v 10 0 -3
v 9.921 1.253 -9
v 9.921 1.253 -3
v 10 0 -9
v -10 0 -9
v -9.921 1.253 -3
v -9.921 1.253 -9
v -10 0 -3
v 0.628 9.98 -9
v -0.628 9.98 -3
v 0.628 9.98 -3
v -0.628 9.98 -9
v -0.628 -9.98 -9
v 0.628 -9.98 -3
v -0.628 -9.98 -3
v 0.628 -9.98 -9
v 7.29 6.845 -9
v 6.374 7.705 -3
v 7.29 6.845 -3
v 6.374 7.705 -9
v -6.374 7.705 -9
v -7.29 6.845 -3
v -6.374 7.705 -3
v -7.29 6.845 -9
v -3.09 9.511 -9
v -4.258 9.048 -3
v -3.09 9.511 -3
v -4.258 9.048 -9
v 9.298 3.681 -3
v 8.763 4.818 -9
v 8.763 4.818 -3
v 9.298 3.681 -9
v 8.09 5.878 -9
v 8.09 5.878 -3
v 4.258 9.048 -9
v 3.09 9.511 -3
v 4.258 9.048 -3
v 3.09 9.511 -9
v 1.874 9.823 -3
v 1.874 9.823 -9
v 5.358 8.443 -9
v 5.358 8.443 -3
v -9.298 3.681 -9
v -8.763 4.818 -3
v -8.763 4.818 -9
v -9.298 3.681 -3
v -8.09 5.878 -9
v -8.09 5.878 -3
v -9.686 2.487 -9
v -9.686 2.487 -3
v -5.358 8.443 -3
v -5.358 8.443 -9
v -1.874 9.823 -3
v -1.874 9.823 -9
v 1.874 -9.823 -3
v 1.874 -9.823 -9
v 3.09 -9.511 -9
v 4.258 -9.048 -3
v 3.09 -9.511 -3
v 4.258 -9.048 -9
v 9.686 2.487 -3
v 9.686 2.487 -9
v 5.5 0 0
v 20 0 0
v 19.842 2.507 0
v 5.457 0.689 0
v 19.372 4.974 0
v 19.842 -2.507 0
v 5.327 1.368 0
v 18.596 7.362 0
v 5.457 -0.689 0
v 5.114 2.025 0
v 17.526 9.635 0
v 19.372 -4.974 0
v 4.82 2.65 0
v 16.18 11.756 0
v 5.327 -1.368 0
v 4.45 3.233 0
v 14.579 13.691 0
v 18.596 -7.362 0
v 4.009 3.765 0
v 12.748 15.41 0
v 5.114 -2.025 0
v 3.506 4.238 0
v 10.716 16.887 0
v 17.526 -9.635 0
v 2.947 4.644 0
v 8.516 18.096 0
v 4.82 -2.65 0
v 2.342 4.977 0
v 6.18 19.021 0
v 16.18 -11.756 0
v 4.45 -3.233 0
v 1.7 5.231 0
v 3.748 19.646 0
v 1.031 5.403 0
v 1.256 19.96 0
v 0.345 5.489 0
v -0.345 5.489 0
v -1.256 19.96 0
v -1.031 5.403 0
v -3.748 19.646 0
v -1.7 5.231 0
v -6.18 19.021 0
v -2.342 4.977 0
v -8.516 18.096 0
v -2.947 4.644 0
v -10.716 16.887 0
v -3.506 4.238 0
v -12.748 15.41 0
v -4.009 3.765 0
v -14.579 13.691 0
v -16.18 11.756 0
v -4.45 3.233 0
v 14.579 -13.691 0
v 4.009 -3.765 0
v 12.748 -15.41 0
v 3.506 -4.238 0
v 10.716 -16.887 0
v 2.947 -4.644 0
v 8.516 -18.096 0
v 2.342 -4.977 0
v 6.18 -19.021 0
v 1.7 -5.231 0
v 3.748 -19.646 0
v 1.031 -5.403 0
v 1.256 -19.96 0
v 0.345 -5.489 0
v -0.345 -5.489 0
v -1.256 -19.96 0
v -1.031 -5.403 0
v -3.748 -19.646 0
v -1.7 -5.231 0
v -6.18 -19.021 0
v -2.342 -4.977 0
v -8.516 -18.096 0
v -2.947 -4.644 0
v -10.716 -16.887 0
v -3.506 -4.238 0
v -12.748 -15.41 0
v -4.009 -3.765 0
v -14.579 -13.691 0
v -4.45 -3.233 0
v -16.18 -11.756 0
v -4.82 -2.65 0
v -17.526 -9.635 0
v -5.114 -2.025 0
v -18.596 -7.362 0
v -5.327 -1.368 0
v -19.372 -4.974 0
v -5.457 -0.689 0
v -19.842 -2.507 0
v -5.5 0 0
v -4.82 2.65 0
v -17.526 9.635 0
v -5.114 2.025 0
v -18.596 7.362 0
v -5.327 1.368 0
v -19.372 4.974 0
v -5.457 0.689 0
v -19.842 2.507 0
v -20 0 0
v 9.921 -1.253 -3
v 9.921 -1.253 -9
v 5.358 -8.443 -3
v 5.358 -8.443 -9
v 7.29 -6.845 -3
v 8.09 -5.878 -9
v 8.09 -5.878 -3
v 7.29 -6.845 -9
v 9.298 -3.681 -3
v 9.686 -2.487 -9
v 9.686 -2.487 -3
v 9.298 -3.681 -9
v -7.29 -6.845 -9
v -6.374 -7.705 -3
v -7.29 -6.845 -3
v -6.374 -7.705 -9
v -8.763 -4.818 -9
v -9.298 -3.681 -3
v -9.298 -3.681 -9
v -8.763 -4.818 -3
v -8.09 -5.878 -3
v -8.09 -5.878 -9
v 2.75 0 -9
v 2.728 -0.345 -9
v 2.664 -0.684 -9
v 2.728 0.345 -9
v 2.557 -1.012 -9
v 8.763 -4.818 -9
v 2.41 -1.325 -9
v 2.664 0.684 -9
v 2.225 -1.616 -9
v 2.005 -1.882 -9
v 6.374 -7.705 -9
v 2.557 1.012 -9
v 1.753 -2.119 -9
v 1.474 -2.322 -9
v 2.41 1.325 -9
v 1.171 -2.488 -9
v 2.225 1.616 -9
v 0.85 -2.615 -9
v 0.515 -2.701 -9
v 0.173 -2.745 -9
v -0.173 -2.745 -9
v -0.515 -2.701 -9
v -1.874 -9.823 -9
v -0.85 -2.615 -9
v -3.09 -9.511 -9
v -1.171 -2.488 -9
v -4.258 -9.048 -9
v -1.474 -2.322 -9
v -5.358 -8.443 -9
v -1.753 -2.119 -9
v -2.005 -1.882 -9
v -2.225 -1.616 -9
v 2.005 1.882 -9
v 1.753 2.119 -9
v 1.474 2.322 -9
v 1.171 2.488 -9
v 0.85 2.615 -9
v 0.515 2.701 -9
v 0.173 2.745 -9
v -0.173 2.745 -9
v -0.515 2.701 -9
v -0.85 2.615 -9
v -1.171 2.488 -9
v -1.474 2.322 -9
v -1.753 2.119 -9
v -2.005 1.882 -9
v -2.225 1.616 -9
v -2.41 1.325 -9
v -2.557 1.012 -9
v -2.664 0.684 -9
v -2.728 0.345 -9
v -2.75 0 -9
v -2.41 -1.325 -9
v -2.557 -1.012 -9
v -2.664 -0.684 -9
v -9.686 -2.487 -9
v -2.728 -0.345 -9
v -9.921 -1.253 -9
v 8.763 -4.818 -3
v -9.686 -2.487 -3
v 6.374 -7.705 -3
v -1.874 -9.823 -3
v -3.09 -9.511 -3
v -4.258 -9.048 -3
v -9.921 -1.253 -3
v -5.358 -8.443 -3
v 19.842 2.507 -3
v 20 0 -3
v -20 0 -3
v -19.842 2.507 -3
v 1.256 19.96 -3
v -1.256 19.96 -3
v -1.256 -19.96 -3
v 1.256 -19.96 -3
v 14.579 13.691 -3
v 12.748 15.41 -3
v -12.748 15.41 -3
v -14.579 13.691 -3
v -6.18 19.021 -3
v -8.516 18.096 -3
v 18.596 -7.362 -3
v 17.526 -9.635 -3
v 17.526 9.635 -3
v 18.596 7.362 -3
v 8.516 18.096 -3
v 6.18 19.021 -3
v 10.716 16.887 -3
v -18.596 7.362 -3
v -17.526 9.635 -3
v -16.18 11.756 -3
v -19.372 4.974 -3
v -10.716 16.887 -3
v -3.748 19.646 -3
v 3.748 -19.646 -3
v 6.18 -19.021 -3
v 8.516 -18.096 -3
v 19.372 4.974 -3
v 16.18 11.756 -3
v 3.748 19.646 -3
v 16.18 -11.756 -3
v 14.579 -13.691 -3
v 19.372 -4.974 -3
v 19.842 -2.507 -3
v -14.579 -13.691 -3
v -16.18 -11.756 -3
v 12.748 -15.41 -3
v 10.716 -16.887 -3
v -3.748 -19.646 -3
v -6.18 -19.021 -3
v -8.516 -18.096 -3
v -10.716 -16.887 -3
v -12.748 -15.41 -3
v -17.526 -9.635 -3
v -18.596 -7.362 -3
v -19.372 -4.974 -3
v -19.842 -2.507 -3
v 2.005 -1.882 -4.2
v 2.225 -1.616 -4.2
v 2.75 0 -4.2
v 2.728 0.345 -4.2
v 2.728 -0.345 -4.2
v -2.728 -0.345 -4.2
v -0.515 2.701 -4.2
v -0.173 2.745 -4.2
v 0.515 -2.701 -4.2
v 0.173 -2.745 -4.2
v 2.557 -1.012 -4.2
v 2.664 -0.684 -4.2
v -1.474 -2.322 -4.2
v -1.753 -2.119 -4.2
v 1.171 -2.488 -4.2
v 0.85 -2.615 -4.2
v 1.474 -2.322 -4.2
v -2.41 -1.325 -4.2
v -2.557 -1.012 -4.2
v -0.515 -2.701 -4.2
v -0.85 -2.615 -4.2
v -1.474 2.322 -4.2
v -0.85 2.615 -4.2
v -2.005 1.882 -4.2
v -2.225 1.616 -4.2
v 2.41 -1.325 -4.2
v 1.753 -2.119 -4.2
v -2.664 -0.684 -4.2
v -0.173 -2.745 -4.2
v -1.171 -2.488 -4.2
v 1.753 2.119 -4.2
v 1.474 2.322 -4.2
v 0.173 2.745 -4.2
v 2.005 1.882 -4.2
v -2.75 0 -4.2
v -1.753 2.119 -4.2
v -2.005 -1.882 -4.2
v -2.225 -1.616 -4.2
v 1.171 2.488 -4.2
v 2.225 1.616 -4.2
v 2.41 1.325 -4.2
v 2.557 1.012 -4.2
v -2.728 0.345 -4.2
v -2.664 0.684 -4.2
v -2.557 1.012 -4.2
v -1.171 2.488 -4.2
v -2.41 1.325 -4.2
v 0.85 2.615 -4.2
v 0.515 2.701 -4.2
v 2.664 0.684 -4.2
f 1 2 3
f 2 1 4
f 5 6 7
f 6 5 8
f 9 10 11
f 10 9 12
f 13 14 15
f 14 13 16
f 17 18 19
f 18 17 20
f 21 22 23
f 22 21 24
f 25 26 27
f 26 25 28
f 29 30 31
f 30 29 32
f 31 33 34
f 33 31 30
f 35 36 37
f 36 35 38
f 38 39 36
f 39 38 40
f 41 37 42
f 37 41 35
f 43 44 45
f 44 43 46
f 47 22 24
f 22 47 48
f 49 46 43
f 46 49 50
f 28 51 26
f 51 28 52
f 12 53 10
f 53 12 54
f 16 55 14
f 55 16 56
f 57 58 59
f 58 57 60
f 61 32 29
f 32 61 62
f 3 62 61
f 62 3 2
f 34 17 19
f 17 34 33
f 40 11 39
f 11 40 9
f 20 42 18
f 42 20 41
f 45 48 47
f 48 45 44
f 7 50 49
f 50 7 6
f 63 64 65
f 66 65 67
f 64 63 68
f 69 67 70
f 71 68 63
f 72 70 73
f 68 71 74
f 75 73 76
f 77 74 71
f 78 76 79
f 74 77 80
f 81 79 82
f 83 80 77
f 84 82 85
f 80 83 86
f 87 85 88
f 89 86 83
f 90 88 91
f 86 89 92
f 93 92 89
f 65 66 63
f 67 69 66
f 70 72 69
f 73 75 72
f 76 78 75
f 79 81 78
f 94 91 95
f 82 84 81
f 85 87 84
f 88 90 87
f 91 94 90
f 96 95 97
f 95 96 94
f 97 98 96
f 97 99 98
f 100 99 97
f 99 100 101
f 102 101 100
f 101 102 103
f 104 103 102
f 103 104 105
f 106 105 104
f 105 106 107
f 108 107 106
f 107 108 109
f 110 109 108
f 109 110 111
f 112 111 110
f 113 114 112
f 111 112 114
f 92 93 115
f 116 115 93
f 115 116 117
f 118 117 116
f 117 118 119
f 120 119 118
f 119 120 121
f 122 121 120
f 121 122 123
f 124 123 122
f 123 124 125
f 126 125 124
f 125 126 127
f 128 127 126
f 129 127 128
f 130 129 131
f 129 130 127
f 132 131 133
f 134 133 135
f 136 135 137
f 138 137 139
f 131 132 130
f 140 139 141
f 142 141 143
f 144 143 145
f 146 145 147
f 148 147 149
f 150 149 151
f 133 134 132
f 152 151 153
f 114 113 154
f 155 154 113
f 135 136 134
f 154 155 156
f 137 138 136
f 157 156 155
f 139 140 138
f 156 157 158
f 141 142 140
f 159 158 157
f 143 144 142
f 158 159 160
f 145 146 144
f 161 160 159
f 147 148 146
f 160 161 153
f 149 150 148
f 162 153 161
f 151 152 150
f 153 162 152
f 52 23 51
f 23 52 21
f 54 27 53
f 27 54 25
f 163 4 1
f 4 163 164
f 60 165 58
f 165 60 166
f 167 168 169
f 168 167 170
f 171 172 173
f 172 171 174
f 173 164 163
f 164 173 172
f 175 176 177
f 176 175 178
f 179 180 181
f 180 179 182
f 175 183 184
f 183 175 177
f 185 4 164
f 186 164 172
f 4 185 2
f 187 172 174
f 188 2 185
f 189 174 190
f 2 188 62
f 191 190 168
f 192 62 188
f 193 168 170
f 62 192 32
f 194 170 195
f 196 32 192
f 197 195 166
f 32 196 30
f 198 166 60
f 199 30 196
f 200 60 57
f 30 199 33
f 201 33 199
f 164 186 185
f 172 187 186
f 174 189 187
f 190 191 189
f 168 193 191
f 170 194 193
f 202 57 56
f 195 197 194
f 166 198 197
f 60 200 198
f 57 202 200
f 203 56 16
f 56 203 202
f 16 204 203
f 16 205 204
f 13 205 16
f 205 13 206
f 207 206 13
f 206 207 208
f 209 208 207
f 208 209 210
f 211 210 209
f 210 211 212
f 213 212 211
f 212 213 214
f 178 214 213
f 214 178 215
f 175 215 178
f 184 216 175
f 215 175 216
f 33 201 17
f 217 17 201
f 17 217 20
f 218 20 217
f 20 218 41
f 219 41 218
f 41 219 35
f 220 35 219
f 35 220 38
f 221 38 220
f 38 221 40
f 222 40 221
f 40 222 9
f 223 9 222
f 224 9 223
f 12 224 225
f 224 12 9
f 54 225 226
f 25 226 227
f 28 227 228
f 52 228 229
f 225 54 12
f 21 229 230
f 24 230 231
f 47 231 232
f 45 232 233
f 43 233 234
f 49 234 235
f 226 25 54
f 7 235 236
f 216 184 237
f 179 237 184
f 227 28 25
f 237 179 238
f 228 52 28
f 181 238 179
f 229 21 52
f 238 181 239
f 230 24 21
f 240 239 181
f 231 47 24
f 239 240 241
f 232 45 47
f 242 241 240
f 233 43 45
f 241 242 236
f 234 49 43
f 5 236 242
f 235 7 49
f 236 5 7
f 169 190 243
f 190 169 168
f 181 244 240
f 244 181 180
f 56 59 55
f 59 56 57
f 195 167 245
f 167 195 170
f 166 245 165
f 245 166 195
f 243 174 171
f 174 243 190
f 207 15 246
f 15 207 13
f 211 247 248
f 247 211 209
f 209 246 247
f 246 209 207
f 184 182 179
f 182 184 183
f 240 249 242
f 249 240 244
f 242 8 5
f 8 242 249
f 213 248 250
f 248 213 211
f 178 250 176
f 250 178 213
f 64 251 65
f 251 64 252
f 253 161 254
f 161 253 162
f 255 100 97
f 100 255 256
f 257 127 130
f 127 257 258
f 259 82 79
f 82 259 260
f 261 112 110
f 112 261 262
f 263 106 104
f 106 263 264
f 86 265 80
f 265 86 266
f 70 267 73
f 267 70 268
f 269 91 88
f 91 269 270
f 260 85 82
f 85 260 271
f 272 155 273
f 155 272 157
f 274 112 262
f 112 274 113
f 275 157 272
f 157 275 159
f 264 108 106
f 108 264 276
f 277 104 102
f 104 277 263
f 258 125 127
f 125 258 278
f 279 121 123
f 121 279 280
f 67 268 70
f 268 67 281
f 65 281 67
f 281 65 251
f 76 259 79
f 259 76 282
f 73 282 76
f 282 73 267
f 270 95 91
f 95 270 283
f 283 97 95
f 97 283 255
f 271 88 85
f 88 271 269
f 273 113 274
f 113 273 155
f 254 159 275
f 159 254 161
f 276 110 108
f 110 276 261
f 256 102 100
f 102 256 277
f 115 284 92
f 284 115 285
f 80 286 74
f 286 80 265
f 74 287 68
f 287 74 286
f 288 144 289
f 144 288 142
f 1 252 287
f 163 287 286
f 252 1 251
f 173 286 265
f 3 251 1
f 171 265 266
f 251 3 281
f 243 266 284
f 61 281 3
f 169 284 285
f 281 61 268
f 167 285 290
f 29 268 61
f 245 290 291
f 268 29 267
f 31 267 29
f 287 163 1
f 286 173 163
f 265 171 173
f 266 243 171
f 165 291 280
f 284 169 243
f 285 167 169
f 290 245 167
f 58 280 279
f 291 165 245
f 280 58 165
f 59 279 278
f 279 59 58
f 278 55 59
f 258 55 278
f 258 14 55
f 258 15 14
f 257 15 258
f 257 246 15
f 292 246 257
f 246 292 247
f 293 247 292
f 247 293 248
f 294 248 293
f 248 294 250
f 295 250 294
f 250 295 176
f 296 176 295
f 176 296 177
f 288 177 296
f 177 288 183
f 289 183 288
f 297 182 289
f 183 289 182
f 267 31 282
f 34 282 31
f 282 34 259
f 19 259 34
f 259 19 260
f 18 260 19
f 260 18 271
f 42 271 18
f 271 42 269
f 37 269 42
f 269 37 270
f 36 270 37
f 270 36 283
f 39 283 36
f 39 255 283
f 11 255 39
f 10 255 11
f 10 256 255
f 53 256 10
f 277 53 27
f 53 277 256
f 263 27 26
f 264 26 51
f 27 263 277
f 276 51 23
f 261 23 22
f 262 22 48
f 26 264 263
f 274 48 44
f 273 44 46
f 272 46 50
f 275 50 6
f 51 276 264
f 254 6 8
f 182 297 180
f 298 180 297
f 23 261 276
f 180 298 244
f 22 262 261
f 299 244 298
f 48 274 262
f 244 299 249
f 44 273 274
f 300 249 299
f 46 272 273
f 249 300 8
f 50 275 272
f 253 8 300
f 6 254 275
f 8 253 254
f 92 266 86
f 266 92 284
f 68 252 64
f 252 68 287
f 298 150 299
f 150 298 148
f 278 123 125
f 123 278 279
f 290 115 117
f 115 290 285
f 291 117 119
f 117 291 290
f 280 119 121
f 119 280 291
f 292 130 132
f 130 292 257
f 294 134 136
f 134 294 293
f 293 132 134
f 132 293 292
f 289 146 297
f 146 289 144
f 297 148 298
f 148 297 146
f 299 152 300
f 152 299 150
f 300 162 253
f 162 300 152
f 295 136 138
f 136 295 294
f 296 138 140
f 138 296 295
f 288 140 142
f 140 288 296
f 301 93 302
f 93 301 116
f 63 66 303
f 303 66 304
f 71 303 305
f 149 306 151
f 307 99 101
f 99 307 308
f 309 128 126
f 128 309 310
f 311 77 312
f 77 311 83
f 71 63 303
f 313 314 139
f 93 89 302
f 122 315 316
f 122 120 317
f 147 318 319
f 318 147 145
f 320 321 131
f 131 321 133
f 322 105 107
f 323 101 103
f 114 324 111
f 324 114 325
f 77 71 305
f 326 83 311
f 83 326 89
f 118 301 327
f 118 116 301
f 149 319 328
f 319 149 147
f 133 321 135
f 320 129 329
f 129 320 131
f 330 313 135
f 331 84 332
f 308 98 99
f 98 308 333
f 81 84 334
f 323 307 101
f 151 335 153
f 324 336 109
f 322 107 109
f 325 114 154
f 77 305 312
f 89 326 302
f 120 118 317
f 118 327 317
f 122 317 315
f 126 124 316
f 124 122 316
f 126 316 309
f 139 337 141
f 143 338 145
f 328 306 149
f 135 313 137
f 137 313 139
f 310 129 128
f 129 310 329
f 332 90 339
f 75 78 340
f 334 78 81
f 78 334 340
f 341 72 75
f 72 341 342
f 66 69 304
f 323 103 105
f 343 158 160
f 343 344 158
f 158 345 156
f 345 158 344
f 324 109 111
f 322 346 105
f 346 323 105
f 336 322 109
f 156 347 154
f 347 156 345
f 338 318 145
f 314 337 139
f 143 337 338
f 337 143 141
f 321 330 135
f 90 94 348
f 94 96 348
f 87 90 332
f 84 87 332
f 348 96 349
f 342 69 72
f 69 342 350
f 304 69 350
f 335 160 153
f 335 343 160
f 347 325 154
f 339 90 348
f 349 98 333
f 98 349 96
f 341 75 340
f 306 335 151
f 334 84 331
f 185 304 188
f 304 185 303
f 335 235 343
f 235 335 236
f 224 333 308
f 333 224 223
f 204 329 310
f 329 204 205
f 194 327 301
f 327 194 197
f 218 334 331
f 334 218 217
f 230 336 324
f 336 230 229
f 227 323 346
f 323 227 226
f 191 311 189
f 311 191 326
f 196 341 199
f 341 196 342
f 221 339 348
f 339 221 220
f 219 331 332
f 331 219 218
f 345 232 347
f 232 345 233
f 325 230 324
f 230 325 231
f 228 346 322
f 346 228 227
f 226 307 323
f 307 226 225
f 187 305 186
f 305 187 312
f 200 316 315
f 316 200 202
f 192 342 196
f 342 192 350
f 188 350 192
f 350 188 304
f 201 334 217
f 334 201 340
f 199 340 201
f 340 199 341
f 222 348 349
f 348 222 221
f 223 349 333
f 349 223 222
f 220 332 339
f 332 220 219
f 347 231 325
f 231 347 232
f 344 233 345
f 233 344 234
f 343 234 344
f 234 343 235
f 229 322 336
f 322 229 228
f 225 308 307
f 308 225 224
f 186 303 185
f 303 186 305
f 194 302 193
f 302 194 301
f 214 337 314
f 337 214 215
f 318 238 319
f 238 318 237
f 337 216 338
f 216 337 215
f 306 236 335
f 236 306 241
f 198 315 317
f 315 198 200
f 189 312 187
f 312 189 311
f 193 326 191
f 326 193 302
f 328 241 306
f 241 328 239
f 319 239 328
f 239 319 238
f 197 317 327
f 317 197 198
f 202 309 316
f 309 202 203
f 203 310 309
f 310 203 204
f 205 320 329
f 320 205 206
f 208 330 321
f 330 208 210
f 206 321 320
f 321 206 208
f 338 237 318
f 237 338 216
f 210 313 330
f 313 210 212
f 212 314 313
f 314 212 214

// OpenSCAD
$fn = 50;


difference() {
	union() {
		translate(v = [0, 0, -9.0000000000]) {
			cylinder(h = 9, r = 10.0000000000);
		}
		translate(v = [0, 0, -3.0000000000]) {
			cylinder(h = 3, r = 20.0000000000);
		}
	}
	union() {
		translate(v = [0, 0, 0]) {
			rotate(a = [0, 0, 0]) {
				difference() {
					union() {
						#translate(v = [0, 0, -9.0000000000]) {
							cylinder(h = 9, r = 2.2500000000);
						}
						#translate(v = [0, 0, -4.2000000000]) {
							cylinder(h = 4.2000000000, r1 = 2.7500000000, r2 = 5.5000000000);
						}
						#translate(v = [0, 0, -9.0000000000]) {
							cylinder(h = 9, r = 2.7500000000);
						}
						#translate(v = [0, 0, -9.0000000000]) {
							cylinder(h = 9, r = 2.2500000000);
						}
					}
					union();
				}
			}
		}
	}
}
